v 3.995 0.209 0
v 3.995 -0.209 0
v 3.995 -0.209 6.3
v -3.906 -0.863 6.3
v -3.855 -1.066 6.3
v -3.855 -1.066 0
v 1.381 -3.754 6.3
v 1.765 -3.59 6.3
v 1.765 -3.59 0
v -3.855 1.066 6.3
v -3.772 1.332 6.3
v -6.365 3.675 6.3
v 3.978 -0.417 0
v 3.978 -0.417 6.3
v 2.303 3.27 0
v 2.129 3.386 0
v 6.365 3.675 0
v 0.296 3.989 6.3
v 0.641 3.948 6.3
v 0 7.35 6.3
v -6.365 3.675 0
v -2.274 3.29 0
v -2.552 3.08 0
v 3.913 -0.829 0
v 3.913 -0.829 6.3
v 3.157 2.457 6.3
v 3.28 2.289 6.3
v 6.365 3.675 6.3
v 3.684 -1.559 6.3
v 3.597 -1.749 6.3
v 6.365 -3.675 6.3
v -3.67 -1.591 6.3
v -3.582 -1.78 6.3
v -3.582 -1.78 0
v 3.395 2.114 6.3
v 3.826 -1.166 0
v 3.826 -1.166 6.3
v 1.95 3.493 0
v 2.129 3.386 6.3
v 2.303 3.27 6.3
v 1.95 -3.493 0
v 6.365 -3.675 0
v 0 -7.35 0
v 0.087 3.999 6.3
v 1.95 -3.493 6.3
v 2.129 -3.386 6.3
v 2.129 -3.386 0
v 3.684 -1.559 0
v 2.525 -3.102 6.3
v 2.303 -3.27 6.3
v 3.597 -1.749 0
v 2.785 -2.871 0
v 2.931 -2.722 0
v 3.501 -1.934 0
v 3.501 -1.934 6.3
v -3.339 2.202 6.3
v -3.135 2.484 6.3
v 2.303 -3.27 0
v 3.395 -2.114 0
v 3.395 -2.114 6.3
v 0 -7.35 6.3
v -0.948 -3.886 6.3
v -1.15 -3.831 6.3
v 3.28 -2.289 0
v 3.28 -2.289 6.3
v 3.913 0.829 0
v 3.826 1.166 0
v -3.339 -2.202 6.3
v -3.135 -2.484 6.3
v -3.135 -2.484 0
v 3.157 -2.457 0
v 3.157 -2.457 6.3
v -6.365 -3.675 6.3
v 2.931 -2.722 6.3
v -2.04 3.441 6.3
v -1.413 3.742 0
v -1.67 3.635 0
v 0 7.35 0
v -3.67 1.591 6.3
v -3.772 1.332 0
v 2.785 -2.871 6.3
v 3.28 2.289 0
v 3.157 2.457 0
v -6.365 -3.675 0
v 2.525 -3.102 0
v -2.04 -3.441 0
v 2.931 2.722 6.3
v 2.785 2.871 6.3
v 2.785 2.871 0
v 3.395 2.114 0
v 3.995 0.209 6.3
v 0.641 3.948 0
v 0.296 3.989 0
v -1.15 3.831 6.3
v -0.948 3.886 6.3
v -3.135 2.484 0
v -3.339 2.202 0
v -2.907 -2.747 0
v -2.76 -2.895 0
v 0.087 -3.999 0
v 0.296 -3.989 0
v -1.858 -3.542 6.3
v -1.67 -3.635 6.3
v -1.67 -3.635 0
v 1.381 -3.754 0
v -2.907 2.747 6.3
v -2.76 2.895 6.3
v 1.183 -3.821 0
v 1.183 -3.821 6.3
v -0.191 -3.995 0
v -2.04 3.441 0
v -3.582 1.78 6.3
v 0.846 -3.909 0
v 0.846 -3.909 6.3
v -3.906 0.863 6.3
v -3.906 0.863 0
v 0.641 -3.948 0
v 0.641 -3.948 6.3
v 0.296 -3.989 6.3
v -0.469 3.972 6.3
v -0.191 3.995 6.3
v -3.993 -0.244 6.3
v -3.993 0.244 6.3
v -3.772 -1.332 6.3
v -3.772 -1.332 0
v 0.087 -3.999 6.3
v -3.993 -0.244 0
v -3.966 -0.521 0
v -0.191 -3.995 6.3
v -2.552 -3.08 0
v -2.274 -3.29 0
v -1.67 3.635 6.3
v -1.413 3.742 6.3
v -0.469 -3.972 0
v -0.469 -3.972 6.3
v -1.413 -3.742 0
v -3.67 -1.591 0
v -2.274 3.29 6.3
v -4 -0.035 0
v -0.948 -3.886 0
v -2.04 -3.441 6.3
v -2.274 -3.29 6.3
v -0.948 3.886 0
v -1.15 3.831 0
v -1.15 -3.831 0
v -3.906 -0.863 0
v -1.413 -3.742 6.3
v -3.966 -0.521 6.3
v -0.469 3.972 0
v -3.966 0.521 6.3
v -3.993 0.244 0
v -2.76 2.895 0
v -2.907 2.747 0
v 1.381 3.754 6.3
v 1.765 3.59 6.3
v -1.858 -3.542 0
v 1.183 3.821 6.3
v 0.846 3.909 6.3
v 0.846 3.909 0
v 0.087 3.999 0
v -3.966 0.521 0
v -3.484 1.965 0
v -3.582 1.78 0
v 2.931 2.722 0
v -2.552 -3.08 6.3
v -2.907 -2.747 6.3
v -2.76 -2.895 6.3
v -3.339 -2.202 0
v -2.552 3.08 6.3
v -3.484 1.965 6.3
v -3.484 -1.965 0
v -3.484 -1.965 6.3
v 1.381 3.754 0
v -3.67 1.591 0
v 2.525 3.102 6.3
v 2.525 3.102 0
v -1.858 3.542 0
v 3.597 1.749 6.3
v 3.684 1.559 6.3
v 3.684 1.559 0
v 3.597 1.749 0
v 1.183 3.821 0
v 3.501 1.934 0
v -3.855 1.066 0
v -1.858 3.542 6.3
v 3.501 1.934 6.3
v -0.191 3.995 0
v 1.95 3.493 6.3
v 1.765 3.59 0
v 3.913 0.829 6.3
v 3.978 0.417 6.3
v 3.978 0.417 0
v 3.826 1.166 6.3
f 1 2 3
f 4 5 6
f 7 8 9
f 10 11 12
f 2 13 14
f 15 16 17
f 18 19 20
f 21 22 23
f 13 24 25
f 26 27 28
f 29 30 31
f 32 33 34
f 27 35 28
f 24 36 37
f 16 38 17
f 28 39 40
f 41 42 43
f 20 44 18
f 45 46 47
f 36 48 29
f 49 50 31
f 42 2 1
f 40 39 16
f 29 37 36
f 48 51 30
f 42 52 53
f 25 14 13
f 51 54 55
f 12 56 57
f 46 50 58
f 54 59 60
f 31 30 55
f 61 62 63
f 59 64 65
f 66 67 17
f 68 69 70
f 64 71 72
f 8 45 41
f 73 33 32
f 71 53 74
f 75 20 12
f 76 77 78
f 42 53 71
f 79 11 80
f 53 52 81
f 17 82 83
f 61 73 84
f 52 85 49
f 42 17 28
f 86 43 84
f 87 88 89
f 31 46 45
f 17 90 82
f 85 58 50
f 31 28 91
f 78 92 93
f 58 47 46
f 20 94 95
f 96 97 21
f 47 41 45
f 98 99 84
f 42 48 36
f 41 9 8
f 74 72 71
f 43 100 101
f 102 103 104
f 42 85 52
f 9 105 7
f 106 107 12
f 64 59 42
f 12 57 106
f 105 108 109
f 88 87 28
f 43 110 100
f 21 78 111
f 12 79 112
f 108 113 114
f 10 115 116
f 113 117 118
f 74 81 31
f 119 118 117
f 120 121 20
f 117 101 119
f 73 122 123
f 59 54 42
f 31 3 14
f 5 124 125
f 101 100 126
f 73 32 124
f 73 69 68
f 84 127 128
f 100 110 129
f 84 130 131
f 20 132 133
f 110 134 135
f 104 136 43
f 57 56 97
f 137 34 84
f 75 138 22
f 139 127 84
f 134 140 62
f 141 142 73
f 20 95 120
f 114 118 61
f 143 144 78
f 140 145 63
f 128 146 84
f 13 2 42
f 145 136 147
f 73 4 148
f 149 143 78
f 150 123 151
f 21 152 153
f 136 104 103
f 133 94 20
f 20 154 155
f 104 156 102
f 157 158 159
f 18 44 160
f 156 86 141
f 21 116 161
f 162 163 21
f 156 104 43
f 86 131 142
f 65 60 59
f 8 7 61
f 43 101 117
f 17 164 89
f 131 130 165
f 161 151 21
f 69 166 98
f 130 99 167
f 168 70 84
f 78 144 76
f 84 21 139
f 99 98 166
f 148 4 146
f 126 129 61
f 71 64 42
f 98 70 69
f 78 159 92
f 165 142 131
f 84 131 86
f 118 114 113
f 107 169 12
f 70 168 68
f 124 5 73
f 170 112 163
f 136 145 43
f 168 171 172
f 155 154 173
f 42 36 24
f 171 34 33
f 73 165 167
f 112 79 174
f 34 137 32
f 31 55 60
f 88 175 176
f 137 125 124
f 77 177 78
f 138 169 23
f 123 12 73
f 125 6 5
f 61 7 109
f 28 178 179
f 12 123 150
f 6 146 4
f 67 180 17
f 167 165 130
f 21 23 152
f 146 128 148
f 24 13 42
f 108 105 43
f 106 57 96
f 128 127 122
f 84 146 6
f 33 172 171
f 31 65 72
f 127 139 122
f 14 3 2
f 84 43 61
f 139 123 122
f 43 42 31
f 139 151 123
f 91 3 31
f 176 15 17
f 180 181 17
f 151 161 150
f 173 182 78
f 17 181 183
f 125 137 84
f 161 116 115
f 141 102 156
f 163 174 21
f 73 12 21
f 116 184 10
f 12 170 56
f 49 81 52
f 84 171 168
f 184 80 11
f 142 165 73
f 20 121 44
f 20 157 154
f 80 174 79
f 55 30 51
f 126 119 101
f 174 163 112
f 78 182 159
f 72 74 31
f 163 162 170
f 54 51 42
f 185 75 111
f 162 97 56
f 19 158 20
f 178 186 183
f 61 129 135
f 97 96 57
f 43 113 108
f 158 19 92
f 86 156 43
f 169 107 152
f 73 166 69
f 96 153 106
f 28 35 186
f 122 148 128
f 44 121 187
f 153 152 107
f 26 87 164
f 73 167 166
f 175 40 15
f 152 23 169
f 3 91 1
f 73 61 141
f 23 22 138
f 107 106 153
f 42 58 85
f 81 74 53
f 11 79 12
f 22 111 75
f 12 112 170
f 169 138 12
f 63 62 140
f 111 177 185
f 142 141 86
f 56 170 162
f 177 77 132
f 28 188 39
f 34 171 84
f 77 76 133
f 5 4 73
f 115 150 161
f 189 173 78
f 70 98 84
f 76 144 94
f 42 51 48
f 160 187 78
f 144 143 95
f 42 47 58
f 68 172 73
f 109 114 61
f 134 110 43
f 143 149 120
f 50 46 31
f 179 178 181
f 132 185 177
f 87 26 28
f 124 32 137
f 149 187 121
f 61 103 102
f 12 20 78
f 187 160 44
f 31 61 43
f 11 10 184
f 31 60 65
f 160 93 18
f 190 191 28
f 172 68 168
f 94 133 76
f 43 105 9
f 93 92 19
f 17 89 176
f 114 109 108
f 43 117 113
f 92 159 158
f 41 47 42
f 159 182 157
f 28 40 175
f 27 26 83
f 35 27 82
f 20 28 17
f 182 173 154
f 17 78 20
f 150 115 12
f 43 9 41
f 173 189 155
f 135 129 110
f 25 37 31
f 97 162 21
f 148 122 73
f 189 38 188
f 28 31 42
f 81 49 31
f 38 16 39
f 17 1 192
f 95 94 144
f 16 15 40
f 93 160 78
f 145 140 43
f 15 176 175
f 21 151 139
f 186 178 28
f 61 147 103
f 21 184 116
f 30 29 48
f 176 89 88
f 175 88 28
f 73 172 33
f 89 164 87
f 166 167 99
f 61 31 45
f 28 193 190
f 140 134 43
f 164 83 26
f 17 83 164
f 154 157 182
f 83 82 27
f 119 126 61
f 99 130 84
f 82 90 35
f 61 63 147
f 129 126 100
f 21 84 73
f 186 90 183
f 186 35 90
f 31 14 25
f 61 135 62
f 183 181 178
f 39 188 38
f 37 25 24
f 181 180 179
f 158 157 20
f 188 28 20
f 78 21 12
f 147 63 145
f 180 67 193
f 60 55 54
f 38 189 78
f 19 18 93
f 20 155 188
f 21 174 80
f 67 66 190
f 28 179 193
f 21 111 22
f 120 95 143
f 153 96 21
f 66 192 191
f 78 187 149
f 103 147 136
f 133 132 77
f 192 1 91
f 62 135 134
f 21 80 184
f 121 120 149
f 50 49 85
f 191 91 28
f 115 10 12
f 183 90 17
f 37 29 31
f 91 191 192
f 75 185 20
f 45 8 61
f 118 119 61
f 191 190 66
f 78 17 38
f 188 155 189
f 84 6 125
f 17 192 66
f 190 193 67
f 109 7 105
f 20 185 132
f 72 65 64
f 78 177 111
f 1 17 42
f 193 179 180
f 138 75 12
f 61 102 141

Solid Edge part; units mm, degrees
sketch "Sketch1" plane through (0, 0, 0) normal (0, 0, 1) x (1, 0, 0)
  line L0 (0, 7.35) -> (6.3653, 3.675)
  line L1 (6.3653, 3.675) -> (6.3653, -3.675)
  line L2 (6.3653, -3.675) -> (0, -7.35)
  line L3 (0, -7.35) -> (-6.3653, -3.675)
  line L4 (-6.3653, -3.675) -> (-6.3653, 3.675)
  line L5 (-6.3653, 3.675) -> (0, 7.35)
extrude "Protrusion1" add sketch "Sketch1" along normal blind 6.3
sketch "Sketch2" plane through (0, 0, 6.3) normal (0, 0, 1) x (0.866, 0.5, 0)
  circle A0 centre (0, 0) radius 4
extrude "Cutout1" cut sketch "Sketch2" against normal through all
properties material "Stainless steel"
